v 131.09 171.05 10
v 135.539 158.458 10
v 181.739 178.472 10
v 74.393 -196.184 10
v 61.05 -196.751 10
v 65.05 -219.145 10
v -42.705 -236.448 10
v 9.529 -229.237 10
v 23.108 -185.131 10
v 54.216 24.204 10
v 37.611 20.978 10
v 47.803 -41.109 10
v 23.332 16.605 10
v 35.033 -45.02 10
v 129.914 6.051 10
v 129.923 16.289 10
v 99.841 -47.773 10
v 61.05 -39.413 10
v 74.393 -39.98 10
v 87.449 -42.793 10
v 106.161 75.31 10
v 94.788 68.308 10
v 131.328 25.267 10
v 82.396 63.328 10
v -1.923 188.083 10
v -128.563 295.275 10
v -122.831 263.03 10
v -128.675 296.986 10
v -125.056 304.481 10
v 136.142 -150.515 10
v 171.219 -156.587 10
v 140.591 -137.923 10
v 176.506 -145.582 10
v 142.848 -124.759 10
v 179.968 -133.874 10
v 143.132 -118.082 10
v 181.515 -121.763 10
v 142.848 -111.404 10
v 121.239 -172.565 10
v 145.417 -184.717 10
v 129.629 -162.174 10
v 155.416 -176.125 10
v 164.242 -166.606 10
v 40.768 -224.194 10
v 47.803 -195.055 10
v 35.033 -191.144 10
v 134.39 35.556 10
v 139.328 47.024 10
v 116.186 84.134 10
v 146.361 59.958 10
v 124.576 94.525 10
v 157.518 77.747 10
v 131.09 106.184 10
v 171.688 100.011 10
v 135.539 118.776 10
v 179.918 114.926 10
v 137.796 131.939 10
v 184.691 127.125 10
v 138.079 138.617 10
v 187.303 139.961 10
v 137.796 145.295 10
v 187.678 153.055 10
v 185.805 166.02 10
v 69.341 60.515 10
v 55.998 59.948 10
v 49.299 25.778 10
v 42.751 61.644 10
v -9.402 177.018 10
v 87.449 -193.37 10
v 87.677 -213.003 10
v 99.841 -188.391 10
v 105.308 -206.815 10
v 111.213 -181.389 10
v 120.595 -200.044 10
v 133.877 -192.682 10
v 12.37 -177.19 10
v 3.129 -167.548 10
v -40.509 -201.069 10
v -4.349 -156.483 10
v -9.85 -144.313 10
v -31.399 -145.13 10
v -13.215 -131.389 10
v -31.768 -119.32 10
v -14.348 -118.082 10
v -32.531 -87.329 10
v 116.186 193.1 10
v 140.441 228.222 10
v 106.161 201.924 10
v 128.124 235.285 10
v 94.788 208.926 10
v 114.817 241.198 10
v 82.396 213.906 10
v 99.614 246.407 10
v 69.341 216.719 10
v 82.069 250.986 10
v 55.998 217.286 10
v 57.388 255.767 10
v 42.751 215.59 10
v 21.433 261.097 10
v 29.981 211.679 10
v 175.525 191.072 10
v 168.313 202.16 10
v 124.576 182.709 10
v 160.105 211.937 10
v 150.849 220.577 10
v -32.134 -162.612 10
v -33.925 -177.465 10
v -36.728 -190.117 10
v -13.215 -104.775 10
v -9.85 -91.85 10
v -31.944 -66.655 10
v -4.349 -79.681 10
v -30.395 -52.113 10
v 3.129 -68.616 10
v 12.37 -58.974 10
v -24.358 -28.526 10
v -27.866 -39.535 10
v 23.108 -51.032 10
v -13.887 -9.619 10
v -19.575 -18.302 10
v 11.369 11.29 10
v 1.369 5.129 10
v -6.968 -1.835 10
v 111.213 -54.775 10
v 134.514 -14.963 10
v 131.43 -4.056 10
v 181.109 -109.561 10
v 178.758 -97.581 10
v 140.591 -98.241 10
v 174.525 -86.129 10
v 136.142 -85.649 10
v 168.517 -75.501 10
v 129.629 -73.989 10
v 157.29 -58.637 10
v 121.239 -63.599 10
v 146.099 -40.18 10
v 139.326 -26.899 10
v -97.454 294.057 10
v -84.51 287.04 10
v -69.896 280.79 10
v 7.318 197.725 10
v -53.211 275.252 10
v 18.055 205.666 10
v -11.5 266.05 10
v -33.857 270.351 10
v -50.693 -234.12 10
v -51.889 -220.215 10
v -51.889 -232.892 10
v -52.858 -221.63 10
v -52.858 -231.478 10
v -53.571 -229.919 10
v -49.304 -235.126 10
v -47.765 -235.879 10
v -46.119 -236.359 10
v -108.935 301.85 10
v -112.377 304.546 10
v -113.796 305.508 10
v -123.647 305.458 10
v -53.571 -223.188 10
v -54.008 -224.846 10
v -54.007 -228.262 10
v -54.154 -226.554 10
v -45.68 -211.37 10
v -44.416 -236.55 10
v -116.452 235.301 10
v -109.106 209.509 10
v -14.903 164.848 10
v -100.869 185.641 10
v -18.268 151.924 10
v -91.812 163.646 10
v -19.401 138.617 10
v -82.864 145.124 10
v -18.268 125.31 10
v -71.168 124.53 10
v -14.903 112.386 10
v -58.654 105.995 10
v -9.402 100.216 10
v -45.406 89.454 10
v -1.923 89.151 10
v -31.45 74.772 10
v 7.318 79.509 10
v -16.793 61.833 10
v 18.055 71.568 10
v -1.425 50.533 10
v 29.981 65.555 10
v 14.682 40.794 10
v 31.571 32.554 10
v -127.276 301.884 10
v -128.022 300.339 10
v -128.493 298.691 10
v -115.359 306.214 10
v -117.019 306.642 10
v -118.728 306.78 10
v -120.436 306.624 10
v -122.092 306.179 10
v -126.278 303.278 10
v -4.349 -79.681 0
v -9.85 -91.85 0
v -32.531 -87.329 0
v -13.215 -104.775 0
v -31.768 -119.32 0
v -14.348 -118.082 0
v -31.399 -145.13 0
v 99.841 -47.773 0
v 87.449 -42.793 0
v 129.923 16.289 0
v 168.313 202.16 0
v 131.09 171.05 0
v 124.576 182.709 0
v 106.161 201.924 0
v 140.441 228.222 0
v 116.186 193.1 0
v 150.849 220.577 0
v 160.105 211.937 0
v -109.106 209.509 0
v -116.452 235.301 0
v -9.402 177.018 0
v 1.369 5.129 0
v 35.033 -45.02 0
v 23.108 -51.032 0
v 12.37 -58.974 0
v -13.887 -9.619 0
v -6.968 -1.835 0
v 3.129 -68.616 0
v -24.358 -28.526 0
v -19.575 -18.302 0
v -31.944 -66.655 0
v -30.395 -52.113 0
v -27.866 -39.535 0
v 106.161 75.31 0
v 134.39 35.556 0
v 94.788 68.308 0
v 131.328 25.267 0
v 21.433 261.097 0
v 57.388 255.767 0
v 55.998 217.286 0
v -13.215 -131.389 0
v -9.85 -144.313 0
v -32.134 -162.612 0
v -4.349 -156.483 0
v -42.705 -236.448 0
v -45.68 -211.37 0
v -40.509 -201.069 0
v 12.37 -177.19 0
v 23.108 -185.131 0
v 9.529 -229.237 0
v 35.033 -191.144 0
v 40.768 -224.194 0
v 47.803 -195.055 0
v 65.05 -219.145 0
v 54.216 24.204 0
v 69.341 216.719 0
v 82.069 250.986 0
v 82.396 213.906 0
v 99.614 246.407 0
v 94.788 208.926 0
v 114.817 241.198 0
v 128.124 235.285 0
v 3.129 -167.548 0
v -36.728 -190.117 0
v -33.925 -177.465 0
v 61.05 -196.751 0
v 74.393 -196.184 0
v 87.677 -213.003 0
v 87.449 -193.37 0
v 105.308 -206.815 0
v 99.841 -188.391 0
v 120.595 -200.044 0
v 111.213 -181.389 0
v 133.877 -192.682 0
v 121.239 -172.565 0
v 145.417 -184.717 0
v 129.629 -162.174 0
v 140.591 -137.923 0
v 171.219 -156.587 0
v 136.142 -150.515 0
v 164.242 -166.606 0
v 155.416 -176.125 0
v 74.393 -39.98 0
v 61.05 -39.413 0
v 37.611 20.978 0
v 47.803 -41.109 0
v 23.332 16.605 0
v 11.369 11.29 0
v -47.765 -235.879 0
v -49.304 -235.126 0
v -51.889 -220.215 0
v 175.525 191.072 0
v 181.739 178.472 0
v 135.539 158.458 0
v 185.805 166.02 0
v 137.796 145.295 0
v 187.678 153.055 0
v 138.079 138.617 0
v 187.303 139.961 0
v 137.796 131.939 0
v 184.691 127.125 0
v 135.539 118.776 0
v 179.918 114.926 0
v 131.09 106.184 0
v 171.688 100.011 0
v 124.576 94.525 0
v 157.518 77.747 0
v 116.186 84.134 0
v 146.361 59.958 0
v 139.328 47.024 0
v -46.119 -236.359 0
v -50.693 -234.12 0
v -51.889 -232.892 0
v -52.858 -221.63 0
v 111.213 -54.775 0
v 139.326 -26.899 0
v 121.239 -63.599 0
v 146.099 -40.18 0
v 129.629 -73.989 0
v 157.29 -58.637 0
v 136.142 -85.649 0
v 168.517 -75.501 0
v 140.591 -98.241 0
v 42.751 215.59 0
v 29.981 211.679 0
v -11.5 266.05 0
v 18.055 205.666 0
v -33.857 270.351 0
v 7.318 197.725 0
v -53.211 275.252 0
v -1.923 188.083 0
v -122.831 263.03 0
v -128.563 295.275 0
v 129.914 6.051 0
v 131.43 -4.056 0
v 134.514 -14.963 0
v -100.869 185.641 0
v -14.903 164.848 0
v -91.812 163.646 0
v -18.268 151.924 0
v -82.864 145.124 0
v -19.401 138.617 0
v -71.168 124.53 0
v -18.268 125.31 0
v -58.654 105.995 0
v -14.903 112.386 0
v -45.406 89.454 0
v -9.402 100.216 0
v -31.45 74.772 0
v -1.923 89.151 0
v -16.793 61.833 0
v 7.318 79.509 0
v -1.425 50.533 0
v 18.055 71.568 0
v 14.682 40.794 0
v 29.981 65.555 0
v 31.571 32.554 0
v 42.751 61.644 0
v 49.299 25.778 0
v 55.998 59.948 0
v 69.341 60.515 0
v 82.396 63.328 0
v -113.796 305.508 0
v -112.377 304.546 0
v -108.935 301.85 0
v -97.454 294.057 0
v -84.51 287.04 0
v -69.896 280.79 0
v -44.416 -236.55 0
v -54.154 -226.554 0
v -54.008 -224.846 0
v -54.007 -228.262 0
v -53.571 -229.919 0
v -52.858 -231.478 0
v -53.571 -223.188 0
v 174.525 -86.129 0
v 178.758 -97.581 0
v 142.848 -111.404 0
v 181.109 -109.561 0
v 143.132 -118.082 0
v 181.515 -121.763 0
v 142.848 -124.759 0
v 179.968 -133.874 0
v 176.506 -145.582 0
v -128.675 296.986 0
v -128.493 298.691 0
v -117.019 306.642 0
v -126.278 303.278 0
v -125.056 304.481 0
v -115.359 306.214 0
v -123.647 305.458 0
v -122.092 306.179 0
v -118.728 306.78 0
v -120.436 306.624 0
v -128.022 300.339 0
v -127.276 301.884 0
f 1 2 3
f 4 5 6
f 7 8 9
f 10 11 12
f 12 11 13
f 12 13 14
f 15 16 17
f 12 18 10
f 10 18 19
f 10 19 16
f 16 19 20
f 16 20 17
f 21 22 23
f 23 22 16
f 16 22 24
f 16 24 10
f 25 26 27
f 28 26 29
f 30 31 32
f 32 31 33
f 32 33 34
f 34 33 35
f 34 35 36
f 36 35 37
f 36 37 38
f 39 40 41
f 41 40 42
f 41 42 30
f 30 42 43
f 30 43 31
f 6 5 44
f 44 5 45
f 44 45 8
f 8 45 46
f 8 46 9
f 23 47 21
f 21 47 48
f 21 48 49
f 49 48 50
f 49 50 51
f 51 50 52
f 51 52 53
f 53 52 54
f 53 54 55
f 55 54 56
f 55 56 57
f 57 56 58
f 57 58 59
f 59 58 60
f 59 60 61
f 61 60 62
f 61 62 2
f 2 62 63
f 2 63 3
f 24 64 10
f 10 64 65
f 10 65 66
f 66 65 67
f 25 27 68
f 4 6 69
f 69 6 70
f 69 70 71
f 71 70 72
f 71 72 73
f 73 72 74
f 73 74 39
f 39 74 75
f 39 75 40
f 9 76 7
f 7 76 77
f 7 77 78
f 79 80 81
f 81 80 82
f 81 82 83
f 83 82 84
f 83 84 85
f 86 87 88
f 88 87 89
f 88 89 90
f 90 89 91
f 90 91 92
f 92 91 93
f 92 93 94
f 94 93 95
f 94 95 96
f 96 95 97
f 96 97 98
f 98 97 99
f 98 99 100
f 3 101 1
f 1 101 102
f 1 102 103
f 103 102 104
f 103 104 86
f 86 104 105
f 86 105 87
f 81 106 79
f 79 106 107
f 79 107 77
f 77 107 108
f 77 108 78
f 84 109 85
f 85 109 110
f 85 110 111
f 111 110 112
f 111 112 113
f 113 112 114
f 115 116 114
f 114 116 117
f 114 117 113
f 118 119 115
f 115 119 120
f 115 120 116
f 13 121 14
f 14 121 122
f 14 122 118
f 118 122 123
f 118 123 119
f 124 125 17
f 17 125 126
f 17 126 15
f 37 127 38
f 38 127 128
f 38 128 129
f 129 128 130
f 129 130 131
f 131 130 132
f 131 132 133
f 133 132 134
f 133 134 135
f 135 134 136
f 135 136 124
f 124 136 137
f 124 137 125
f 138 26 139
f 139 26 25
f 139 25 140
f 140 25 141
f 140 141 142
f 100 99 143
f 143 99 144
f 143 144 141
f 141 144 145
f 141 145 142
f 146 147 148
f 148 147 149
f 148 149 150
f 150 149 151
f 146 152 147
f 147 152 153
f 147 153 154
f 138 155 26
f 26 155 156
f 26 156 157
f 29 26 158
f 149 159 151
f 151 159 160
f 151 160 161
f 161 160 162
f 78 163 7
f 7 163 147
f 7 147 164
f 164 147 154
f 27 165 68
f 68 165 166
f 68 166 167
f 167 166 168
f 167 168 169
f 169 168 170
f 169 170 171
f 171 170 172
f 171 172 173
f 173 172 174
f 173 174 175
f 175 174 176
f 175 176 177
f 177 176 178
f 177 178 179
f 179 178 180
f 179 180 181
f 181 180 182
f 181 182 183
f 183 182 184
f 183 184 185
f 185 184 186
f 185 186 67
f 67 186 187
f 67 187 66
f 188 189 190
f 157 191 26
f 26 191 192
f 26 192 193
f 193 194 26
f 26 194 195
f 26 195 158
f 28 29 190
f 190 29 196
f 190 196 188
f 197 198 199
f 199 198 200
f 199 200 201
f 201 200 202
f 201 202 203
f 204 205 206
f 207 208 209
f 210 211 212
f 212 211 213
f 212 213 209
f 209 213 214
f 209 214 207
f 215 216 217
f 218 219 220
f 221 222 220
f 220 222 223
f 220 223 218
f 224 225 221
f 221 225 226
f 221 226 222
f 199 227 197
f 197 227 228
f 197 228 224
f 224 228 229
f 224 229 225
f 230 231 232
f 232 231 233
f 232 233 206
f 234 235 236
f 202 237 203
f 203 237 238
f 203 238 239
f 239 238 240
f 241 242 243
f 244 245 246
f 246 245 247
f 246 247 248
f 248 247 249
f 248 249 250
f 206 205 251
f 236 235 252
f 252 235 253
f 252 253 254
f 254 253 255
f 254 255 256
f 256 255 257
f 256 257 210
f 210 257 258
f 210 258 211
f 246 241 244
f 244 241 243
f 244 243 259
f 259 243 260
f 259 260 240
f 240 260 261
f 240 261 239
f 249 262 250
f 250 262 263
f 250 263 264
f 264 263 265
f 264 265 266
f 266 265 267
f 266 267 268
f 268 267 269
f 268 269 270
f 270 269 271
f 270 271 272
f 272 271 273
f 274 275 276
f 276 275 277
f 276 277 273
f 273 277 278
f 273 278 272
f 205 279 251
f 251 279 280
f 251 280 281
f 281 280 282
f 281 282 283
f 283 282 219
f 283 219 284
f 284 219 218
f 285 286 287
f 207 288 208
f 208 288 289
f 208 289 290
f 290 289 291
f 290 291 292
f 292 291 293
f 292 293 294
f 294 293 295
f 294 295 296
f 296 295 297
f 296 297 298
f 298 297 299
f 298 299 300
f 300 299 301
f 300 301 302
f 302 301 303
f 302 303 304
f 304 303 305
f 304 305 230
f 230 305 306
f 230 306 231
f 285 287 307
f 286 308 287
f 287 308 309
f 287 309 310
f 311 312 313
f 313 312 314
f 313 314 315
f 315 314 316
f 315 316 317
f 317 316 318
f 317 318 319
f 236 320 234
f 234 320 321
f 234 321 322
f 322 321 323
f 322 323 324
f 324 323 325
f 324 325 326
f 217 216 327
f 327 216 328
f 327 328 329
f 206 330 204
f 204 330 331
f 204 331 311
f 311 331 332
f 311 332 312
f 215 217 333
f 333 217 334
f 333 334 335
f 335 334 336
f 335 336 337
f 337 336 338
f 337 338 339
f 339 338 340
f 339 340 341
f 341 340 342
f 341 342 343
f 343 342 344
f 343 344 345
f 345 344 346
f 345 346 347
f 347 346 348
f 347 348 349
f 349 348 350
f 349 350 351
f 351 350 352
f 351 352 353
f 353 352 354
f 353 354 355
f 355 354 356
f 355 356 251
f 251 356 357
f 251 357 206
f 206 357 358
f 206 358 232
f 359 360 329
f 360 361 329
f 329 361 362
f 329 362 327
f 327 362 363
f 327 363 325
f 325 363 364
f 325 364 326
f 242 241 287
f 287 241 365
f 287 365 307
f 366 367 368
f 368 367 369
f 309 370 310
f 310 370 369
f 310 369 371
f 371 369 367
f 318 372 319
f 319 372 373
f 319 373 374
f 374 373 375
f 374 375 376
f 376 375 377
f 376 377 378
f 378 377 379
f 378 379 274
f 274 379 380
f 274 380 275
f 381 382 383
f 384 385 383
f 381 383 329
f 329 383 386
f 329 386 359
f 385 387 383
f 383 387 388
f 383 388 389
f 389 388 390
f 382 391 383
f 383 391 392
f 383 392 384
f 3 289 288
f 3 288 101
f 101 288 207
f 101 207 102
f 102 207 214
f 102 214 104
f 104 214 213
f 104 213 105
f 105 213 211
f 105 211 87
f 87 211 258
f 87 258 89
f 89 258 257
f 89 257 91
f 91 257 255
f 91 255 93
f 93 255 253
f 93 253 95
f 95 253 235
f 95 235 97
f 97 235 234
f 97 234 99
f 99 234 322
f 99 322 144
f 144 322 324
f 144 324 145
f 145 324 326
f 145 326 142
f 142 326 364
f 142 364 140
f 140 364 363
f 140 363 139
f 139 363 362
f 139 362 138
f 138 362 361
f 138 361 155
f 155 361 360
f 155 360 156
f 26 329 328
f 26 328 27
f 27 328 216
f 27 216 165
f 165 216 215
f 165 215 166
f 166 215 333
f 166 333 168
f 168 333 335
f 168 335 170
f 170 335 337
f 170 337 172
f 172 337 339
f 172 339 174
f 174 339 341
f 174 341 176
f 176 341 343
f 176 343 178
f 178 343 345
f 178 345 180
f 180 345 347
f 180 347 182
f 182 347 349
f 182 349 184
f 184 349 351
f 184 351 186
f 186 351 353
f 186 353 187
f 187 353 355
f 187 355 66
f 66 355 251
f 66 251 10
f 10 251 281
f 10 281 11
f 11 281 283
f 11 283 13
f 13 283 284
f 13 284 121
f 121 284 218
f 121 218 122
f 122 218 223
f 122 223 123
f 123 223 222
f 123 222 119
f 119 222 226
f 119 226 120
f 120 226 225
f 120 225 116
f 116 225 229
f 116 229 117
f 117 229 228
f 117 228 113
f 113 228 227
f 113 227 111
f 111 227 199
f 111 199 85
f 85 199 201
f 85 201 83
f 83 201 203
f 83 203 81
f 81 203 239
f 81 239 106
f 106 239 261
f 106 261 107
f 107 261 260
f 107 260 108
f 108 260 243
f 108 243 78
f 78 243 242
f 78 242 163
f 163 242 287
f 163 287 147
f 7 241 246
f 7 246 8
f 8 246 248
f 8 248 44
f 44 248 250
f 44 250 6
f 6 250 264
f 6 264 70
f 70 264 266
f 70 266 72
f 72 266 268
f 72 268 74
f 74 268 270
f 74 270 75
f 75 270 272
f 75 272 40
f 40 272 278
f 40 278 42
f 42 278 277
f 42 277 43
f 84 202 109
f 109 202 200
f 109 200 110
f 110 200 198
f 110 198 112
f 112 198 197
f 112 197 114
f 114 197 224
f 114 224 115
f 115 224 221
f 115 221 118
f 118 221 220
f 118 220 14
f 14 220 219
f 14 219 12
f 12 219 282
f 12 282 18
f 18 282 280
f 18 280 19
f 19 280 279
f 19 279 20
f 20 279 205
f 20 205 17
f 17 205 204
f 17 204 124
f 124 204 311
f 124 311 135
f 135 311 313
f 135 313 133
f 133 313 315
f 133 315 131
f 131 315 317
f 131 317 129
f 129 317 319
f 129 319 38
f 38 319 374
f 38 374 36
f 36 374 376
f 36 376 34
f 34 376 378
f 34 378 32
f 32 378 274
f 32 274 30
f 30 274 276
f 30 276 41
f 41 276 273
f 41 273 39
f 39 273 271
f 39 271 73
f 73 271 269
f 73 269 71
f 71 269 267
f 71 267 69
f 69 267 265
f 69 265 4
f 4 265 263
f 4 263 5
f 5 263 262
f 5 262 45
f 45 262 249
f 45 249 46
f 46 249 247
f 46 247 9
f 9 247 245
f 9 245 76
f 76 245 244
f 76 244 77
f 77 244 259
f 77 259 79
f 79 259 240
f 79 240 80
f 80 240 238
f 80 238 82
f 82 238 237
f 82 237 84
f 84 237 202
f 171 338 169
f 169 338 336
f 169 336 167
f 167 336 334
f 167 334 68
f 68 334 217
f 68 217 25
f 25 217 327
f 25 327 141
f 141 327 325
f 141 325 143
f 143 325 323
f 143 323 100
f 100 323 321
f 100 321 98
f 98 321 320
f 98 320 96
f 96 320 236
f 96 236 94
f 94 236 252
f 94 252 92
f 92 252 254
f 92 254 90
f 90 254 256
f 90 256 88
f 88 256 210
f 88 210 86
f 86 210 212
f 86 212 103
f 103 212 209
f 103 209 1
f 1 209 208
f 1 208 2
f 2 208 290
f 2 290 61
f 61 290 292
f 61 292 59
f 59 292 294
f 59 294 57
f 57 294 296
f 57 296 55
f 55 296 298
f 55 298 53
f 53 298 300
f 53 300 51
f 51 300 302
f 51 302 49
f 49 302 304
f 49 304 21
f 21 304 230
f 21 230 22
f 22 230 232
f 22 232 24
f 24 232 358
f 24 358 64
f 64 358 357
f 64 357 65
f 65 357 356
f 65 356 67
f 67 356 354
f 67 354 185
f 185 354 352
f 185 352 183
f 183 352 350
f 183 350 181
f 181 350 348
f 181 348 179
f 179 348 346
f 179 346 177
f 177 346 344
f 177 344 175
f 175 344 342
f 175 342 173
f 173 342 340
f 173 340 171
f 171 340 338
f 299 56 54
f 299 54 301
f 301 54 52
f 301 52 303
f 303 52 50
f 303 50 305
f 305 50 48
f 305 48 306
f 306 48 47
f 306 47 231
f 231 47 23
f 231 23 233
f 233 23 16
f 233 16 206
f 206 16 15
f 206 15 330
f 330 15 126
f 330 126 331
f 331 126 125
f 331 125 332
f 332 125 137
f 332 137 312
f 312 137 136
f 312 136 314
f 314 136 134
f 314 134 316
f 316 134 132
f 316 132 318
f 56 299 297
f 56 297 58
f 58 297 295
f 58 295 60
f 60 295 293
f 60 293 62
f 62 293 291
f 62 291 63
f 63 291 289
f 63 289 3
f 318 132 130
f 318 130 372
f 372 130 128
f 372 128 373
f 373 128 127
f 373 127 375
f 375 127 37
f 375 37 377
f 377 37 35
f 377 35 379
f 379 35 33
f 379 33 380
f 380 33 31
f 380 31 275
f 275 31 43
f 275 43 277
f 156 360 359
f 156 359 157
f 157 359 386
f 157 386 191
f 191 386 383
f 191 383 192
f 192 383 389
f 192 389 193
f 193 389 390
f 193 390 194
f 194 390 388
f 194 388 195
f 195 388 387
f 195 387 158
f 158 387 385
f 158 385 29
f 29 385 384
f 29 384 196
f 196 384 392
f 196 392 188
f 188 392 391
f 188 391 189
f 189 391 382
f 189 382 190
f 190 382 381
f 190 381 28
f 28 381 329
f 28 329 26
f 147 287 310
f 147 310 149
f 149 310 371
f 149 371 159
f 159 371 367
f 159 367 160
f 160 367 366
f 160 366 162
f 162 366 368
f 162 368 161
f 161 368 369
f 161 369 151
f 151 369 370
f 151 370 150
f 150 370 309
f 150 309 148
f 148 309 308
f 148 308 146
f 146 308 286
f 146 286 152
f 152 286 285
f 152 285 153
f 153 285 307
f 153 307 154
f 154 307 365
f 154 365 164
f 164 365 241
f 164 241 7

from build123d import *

# Parameters (mm, degrees)
SKETCH_1_R          = 78.74
EXTRUDE_1_DEPTH     = 10
CUT_EXTRUDE_1_DEPTH = 10
FILLET_1_R          = 76.2
FILLET_2_R          = 10
FILLET_3_R          = 10


with BuildPart() as part:
    # 草图1 → 凸台-拉伸1 (new body)
    with BuildSketch(Plane.XY):
        with BuildLine():
            Line((190.267122197, 151.113582673), (190.267122197, -81.890410003))
            add(Edge.make_bspline(
                [(-88.138107542, -245.060353001), (6.779919745, -220.260837552), (192.981953107, -238.762703419), (190.267122197, -81.890410003)],
                knots=[0, 0, 0, 0, 1, 1, 1, 1], degree=3))
            add(Edge.make_bspline(
                [(54.215916802, 24.203627008), (-114.622523085, -0.554759509), (39.783580025, -196.67805819), (-88.138107542, -245.060353001)],
                knots=[0, 0, 0, 0, 1, 1, 1, 1], degree=3))
            add(Edge.make_bspline(
                [(-132.455869838, 325.027225622), (-119.39432206, 206.497464479), (-75.497631539, 64.088986069), (54.215916802, 24.203627008)],
                knots=[0, 0, 0, 0, 1, 1, 1, 1], degree=3))
            add(Edge.make_bspline(
                [(190.267122197, 151.113582673), (155.786794972, 310.396382422), (-48.436146721, 217.1498695), (-132.455869838, 325.027225622)],
                knots=[0, 0, 0, 0, 1, 1, 1, 1], degree=3))
        make_face()
        with Locations((59.33940983, 138.616957424)):
            Circle(SKETCH_1_R, mode=Mode.SUBTRACT)
        with Locations((64.391896117, -118.081850955)):
            Circle(SKETCH_1_R, mode=Mode.SUBTRACT)
    extrude(amount=EXTRUDE_1_DEPTH)

    # 草图2 → 切除-拉伸1 (cut)
    with BuildSketch(Plane.XY.offset(10)):
        with BuildLine():
            Line((188.896265885, -107.393898426), (205.862880188, -98.679704405))
            Line((205.862880188, -98.679704405), (202.340041163, 151.118361081))
            Line((202.340041163, 151.118361081), (190.266087737, 151.118361081))
            add(Edge.make_bspline(
                [(190.266087737, 151.118361081), (188.544384558, 103.276758096), (81.518251938, 21.832470975), (169.063135256, -71.612212638), (188.896265885, -107.393898426)],
                knots=[0, 0, 0, 0, 0.522420241, 1, 1, 1, 1], degree=3))
        make_face()
    extrude(amount=-CUT_EXTRUDE_1_DEPTH, mode=Mode.SUBTRACT)

    # 圆角1
    # the kernel refuses this fillet: 76.2 mm, written as the material it takes off along each edge
    with BuildSketch(Plane(origin=(190.266087737, 151.118361081, 10), x_dir=(-0.2976037870645713, 0.9546894709405909, 0), z_dir=(0, 0, -1))) as fillet_1_piece_1:
        with BuildLine():
            CenterArc((21.08459479, -75.823293684), FILLET_1_R, 84.3004486, 49.308731673)
            Line((-31.473255341, -20.649818267), (-32.524412344, -19.546348759))
            ThreePointArc((-32.524412344, -19.546348759), (-17.715527439, -7.413982661), (-0.50558089, 1.437693974))
            Line((-0.50558089, 1.437693974), (-0.135414126, 1.517972007))
            ThreePointArc((-0.135414126, 1.517972007), (14.320252658, 2.198651547), (28.803517484, 1.516465874))
            Line((28.803517484, 1.516465874), (28.652166059, 0))
        make_face()
    extrude(amount=10, mode=Mode.SUBTRACT)
    with BuildSketch(Plane(origin=(188.896265885, -107.393898426, 10), x_dir=(-0.5384434429536498, 0.8426616514000265, 0), z_dir=(0, 0, -1))) as fillet_1_piece_2:
        with BuildLine():
            CenterArc((35.859681761, -76.174050579), FILLET_1_R, 88.504672545, 73.519289888)
            Line((-36.620666388, -52.657266525), (-38.070273351, -52.186930844))
            ThreePointArc((-38.070273351, -52.186930844), (-23.283431284, -22.804726142), (-0.982229113, 1.1652476))
            Line((-0.982229113, 1.1652476), (-0.095133745, 1.521027801))
            ThreePointArc((-0.095133745, 1.521027801), (18.940917562, 1.917869961), (37.887922563, 1.523481012))
            Line((37.887922563, 1.523481012), (37.848153135, 0))
        make_face()
    extrude(amount=10, mode=Mode.SUBTRACT)

    # 圆角2
    fillet_2_edges = [part.edges().sort_by_distance(p)[0] for p in [
        (-132.455869838, 325.027225622, 5),
    ]]
    fillet(fillet_2_edges, radius=FILLET_2_R)

    # 圆角3
    fillet_3_edges = [part.edges().sort_by_distance(p)[0] for p in [
        (-88.138107542, -245.060353001, 5),
    ]]
    fillet(fillet_3_edges, radius=FILLET_3_R)


solid = part.part
